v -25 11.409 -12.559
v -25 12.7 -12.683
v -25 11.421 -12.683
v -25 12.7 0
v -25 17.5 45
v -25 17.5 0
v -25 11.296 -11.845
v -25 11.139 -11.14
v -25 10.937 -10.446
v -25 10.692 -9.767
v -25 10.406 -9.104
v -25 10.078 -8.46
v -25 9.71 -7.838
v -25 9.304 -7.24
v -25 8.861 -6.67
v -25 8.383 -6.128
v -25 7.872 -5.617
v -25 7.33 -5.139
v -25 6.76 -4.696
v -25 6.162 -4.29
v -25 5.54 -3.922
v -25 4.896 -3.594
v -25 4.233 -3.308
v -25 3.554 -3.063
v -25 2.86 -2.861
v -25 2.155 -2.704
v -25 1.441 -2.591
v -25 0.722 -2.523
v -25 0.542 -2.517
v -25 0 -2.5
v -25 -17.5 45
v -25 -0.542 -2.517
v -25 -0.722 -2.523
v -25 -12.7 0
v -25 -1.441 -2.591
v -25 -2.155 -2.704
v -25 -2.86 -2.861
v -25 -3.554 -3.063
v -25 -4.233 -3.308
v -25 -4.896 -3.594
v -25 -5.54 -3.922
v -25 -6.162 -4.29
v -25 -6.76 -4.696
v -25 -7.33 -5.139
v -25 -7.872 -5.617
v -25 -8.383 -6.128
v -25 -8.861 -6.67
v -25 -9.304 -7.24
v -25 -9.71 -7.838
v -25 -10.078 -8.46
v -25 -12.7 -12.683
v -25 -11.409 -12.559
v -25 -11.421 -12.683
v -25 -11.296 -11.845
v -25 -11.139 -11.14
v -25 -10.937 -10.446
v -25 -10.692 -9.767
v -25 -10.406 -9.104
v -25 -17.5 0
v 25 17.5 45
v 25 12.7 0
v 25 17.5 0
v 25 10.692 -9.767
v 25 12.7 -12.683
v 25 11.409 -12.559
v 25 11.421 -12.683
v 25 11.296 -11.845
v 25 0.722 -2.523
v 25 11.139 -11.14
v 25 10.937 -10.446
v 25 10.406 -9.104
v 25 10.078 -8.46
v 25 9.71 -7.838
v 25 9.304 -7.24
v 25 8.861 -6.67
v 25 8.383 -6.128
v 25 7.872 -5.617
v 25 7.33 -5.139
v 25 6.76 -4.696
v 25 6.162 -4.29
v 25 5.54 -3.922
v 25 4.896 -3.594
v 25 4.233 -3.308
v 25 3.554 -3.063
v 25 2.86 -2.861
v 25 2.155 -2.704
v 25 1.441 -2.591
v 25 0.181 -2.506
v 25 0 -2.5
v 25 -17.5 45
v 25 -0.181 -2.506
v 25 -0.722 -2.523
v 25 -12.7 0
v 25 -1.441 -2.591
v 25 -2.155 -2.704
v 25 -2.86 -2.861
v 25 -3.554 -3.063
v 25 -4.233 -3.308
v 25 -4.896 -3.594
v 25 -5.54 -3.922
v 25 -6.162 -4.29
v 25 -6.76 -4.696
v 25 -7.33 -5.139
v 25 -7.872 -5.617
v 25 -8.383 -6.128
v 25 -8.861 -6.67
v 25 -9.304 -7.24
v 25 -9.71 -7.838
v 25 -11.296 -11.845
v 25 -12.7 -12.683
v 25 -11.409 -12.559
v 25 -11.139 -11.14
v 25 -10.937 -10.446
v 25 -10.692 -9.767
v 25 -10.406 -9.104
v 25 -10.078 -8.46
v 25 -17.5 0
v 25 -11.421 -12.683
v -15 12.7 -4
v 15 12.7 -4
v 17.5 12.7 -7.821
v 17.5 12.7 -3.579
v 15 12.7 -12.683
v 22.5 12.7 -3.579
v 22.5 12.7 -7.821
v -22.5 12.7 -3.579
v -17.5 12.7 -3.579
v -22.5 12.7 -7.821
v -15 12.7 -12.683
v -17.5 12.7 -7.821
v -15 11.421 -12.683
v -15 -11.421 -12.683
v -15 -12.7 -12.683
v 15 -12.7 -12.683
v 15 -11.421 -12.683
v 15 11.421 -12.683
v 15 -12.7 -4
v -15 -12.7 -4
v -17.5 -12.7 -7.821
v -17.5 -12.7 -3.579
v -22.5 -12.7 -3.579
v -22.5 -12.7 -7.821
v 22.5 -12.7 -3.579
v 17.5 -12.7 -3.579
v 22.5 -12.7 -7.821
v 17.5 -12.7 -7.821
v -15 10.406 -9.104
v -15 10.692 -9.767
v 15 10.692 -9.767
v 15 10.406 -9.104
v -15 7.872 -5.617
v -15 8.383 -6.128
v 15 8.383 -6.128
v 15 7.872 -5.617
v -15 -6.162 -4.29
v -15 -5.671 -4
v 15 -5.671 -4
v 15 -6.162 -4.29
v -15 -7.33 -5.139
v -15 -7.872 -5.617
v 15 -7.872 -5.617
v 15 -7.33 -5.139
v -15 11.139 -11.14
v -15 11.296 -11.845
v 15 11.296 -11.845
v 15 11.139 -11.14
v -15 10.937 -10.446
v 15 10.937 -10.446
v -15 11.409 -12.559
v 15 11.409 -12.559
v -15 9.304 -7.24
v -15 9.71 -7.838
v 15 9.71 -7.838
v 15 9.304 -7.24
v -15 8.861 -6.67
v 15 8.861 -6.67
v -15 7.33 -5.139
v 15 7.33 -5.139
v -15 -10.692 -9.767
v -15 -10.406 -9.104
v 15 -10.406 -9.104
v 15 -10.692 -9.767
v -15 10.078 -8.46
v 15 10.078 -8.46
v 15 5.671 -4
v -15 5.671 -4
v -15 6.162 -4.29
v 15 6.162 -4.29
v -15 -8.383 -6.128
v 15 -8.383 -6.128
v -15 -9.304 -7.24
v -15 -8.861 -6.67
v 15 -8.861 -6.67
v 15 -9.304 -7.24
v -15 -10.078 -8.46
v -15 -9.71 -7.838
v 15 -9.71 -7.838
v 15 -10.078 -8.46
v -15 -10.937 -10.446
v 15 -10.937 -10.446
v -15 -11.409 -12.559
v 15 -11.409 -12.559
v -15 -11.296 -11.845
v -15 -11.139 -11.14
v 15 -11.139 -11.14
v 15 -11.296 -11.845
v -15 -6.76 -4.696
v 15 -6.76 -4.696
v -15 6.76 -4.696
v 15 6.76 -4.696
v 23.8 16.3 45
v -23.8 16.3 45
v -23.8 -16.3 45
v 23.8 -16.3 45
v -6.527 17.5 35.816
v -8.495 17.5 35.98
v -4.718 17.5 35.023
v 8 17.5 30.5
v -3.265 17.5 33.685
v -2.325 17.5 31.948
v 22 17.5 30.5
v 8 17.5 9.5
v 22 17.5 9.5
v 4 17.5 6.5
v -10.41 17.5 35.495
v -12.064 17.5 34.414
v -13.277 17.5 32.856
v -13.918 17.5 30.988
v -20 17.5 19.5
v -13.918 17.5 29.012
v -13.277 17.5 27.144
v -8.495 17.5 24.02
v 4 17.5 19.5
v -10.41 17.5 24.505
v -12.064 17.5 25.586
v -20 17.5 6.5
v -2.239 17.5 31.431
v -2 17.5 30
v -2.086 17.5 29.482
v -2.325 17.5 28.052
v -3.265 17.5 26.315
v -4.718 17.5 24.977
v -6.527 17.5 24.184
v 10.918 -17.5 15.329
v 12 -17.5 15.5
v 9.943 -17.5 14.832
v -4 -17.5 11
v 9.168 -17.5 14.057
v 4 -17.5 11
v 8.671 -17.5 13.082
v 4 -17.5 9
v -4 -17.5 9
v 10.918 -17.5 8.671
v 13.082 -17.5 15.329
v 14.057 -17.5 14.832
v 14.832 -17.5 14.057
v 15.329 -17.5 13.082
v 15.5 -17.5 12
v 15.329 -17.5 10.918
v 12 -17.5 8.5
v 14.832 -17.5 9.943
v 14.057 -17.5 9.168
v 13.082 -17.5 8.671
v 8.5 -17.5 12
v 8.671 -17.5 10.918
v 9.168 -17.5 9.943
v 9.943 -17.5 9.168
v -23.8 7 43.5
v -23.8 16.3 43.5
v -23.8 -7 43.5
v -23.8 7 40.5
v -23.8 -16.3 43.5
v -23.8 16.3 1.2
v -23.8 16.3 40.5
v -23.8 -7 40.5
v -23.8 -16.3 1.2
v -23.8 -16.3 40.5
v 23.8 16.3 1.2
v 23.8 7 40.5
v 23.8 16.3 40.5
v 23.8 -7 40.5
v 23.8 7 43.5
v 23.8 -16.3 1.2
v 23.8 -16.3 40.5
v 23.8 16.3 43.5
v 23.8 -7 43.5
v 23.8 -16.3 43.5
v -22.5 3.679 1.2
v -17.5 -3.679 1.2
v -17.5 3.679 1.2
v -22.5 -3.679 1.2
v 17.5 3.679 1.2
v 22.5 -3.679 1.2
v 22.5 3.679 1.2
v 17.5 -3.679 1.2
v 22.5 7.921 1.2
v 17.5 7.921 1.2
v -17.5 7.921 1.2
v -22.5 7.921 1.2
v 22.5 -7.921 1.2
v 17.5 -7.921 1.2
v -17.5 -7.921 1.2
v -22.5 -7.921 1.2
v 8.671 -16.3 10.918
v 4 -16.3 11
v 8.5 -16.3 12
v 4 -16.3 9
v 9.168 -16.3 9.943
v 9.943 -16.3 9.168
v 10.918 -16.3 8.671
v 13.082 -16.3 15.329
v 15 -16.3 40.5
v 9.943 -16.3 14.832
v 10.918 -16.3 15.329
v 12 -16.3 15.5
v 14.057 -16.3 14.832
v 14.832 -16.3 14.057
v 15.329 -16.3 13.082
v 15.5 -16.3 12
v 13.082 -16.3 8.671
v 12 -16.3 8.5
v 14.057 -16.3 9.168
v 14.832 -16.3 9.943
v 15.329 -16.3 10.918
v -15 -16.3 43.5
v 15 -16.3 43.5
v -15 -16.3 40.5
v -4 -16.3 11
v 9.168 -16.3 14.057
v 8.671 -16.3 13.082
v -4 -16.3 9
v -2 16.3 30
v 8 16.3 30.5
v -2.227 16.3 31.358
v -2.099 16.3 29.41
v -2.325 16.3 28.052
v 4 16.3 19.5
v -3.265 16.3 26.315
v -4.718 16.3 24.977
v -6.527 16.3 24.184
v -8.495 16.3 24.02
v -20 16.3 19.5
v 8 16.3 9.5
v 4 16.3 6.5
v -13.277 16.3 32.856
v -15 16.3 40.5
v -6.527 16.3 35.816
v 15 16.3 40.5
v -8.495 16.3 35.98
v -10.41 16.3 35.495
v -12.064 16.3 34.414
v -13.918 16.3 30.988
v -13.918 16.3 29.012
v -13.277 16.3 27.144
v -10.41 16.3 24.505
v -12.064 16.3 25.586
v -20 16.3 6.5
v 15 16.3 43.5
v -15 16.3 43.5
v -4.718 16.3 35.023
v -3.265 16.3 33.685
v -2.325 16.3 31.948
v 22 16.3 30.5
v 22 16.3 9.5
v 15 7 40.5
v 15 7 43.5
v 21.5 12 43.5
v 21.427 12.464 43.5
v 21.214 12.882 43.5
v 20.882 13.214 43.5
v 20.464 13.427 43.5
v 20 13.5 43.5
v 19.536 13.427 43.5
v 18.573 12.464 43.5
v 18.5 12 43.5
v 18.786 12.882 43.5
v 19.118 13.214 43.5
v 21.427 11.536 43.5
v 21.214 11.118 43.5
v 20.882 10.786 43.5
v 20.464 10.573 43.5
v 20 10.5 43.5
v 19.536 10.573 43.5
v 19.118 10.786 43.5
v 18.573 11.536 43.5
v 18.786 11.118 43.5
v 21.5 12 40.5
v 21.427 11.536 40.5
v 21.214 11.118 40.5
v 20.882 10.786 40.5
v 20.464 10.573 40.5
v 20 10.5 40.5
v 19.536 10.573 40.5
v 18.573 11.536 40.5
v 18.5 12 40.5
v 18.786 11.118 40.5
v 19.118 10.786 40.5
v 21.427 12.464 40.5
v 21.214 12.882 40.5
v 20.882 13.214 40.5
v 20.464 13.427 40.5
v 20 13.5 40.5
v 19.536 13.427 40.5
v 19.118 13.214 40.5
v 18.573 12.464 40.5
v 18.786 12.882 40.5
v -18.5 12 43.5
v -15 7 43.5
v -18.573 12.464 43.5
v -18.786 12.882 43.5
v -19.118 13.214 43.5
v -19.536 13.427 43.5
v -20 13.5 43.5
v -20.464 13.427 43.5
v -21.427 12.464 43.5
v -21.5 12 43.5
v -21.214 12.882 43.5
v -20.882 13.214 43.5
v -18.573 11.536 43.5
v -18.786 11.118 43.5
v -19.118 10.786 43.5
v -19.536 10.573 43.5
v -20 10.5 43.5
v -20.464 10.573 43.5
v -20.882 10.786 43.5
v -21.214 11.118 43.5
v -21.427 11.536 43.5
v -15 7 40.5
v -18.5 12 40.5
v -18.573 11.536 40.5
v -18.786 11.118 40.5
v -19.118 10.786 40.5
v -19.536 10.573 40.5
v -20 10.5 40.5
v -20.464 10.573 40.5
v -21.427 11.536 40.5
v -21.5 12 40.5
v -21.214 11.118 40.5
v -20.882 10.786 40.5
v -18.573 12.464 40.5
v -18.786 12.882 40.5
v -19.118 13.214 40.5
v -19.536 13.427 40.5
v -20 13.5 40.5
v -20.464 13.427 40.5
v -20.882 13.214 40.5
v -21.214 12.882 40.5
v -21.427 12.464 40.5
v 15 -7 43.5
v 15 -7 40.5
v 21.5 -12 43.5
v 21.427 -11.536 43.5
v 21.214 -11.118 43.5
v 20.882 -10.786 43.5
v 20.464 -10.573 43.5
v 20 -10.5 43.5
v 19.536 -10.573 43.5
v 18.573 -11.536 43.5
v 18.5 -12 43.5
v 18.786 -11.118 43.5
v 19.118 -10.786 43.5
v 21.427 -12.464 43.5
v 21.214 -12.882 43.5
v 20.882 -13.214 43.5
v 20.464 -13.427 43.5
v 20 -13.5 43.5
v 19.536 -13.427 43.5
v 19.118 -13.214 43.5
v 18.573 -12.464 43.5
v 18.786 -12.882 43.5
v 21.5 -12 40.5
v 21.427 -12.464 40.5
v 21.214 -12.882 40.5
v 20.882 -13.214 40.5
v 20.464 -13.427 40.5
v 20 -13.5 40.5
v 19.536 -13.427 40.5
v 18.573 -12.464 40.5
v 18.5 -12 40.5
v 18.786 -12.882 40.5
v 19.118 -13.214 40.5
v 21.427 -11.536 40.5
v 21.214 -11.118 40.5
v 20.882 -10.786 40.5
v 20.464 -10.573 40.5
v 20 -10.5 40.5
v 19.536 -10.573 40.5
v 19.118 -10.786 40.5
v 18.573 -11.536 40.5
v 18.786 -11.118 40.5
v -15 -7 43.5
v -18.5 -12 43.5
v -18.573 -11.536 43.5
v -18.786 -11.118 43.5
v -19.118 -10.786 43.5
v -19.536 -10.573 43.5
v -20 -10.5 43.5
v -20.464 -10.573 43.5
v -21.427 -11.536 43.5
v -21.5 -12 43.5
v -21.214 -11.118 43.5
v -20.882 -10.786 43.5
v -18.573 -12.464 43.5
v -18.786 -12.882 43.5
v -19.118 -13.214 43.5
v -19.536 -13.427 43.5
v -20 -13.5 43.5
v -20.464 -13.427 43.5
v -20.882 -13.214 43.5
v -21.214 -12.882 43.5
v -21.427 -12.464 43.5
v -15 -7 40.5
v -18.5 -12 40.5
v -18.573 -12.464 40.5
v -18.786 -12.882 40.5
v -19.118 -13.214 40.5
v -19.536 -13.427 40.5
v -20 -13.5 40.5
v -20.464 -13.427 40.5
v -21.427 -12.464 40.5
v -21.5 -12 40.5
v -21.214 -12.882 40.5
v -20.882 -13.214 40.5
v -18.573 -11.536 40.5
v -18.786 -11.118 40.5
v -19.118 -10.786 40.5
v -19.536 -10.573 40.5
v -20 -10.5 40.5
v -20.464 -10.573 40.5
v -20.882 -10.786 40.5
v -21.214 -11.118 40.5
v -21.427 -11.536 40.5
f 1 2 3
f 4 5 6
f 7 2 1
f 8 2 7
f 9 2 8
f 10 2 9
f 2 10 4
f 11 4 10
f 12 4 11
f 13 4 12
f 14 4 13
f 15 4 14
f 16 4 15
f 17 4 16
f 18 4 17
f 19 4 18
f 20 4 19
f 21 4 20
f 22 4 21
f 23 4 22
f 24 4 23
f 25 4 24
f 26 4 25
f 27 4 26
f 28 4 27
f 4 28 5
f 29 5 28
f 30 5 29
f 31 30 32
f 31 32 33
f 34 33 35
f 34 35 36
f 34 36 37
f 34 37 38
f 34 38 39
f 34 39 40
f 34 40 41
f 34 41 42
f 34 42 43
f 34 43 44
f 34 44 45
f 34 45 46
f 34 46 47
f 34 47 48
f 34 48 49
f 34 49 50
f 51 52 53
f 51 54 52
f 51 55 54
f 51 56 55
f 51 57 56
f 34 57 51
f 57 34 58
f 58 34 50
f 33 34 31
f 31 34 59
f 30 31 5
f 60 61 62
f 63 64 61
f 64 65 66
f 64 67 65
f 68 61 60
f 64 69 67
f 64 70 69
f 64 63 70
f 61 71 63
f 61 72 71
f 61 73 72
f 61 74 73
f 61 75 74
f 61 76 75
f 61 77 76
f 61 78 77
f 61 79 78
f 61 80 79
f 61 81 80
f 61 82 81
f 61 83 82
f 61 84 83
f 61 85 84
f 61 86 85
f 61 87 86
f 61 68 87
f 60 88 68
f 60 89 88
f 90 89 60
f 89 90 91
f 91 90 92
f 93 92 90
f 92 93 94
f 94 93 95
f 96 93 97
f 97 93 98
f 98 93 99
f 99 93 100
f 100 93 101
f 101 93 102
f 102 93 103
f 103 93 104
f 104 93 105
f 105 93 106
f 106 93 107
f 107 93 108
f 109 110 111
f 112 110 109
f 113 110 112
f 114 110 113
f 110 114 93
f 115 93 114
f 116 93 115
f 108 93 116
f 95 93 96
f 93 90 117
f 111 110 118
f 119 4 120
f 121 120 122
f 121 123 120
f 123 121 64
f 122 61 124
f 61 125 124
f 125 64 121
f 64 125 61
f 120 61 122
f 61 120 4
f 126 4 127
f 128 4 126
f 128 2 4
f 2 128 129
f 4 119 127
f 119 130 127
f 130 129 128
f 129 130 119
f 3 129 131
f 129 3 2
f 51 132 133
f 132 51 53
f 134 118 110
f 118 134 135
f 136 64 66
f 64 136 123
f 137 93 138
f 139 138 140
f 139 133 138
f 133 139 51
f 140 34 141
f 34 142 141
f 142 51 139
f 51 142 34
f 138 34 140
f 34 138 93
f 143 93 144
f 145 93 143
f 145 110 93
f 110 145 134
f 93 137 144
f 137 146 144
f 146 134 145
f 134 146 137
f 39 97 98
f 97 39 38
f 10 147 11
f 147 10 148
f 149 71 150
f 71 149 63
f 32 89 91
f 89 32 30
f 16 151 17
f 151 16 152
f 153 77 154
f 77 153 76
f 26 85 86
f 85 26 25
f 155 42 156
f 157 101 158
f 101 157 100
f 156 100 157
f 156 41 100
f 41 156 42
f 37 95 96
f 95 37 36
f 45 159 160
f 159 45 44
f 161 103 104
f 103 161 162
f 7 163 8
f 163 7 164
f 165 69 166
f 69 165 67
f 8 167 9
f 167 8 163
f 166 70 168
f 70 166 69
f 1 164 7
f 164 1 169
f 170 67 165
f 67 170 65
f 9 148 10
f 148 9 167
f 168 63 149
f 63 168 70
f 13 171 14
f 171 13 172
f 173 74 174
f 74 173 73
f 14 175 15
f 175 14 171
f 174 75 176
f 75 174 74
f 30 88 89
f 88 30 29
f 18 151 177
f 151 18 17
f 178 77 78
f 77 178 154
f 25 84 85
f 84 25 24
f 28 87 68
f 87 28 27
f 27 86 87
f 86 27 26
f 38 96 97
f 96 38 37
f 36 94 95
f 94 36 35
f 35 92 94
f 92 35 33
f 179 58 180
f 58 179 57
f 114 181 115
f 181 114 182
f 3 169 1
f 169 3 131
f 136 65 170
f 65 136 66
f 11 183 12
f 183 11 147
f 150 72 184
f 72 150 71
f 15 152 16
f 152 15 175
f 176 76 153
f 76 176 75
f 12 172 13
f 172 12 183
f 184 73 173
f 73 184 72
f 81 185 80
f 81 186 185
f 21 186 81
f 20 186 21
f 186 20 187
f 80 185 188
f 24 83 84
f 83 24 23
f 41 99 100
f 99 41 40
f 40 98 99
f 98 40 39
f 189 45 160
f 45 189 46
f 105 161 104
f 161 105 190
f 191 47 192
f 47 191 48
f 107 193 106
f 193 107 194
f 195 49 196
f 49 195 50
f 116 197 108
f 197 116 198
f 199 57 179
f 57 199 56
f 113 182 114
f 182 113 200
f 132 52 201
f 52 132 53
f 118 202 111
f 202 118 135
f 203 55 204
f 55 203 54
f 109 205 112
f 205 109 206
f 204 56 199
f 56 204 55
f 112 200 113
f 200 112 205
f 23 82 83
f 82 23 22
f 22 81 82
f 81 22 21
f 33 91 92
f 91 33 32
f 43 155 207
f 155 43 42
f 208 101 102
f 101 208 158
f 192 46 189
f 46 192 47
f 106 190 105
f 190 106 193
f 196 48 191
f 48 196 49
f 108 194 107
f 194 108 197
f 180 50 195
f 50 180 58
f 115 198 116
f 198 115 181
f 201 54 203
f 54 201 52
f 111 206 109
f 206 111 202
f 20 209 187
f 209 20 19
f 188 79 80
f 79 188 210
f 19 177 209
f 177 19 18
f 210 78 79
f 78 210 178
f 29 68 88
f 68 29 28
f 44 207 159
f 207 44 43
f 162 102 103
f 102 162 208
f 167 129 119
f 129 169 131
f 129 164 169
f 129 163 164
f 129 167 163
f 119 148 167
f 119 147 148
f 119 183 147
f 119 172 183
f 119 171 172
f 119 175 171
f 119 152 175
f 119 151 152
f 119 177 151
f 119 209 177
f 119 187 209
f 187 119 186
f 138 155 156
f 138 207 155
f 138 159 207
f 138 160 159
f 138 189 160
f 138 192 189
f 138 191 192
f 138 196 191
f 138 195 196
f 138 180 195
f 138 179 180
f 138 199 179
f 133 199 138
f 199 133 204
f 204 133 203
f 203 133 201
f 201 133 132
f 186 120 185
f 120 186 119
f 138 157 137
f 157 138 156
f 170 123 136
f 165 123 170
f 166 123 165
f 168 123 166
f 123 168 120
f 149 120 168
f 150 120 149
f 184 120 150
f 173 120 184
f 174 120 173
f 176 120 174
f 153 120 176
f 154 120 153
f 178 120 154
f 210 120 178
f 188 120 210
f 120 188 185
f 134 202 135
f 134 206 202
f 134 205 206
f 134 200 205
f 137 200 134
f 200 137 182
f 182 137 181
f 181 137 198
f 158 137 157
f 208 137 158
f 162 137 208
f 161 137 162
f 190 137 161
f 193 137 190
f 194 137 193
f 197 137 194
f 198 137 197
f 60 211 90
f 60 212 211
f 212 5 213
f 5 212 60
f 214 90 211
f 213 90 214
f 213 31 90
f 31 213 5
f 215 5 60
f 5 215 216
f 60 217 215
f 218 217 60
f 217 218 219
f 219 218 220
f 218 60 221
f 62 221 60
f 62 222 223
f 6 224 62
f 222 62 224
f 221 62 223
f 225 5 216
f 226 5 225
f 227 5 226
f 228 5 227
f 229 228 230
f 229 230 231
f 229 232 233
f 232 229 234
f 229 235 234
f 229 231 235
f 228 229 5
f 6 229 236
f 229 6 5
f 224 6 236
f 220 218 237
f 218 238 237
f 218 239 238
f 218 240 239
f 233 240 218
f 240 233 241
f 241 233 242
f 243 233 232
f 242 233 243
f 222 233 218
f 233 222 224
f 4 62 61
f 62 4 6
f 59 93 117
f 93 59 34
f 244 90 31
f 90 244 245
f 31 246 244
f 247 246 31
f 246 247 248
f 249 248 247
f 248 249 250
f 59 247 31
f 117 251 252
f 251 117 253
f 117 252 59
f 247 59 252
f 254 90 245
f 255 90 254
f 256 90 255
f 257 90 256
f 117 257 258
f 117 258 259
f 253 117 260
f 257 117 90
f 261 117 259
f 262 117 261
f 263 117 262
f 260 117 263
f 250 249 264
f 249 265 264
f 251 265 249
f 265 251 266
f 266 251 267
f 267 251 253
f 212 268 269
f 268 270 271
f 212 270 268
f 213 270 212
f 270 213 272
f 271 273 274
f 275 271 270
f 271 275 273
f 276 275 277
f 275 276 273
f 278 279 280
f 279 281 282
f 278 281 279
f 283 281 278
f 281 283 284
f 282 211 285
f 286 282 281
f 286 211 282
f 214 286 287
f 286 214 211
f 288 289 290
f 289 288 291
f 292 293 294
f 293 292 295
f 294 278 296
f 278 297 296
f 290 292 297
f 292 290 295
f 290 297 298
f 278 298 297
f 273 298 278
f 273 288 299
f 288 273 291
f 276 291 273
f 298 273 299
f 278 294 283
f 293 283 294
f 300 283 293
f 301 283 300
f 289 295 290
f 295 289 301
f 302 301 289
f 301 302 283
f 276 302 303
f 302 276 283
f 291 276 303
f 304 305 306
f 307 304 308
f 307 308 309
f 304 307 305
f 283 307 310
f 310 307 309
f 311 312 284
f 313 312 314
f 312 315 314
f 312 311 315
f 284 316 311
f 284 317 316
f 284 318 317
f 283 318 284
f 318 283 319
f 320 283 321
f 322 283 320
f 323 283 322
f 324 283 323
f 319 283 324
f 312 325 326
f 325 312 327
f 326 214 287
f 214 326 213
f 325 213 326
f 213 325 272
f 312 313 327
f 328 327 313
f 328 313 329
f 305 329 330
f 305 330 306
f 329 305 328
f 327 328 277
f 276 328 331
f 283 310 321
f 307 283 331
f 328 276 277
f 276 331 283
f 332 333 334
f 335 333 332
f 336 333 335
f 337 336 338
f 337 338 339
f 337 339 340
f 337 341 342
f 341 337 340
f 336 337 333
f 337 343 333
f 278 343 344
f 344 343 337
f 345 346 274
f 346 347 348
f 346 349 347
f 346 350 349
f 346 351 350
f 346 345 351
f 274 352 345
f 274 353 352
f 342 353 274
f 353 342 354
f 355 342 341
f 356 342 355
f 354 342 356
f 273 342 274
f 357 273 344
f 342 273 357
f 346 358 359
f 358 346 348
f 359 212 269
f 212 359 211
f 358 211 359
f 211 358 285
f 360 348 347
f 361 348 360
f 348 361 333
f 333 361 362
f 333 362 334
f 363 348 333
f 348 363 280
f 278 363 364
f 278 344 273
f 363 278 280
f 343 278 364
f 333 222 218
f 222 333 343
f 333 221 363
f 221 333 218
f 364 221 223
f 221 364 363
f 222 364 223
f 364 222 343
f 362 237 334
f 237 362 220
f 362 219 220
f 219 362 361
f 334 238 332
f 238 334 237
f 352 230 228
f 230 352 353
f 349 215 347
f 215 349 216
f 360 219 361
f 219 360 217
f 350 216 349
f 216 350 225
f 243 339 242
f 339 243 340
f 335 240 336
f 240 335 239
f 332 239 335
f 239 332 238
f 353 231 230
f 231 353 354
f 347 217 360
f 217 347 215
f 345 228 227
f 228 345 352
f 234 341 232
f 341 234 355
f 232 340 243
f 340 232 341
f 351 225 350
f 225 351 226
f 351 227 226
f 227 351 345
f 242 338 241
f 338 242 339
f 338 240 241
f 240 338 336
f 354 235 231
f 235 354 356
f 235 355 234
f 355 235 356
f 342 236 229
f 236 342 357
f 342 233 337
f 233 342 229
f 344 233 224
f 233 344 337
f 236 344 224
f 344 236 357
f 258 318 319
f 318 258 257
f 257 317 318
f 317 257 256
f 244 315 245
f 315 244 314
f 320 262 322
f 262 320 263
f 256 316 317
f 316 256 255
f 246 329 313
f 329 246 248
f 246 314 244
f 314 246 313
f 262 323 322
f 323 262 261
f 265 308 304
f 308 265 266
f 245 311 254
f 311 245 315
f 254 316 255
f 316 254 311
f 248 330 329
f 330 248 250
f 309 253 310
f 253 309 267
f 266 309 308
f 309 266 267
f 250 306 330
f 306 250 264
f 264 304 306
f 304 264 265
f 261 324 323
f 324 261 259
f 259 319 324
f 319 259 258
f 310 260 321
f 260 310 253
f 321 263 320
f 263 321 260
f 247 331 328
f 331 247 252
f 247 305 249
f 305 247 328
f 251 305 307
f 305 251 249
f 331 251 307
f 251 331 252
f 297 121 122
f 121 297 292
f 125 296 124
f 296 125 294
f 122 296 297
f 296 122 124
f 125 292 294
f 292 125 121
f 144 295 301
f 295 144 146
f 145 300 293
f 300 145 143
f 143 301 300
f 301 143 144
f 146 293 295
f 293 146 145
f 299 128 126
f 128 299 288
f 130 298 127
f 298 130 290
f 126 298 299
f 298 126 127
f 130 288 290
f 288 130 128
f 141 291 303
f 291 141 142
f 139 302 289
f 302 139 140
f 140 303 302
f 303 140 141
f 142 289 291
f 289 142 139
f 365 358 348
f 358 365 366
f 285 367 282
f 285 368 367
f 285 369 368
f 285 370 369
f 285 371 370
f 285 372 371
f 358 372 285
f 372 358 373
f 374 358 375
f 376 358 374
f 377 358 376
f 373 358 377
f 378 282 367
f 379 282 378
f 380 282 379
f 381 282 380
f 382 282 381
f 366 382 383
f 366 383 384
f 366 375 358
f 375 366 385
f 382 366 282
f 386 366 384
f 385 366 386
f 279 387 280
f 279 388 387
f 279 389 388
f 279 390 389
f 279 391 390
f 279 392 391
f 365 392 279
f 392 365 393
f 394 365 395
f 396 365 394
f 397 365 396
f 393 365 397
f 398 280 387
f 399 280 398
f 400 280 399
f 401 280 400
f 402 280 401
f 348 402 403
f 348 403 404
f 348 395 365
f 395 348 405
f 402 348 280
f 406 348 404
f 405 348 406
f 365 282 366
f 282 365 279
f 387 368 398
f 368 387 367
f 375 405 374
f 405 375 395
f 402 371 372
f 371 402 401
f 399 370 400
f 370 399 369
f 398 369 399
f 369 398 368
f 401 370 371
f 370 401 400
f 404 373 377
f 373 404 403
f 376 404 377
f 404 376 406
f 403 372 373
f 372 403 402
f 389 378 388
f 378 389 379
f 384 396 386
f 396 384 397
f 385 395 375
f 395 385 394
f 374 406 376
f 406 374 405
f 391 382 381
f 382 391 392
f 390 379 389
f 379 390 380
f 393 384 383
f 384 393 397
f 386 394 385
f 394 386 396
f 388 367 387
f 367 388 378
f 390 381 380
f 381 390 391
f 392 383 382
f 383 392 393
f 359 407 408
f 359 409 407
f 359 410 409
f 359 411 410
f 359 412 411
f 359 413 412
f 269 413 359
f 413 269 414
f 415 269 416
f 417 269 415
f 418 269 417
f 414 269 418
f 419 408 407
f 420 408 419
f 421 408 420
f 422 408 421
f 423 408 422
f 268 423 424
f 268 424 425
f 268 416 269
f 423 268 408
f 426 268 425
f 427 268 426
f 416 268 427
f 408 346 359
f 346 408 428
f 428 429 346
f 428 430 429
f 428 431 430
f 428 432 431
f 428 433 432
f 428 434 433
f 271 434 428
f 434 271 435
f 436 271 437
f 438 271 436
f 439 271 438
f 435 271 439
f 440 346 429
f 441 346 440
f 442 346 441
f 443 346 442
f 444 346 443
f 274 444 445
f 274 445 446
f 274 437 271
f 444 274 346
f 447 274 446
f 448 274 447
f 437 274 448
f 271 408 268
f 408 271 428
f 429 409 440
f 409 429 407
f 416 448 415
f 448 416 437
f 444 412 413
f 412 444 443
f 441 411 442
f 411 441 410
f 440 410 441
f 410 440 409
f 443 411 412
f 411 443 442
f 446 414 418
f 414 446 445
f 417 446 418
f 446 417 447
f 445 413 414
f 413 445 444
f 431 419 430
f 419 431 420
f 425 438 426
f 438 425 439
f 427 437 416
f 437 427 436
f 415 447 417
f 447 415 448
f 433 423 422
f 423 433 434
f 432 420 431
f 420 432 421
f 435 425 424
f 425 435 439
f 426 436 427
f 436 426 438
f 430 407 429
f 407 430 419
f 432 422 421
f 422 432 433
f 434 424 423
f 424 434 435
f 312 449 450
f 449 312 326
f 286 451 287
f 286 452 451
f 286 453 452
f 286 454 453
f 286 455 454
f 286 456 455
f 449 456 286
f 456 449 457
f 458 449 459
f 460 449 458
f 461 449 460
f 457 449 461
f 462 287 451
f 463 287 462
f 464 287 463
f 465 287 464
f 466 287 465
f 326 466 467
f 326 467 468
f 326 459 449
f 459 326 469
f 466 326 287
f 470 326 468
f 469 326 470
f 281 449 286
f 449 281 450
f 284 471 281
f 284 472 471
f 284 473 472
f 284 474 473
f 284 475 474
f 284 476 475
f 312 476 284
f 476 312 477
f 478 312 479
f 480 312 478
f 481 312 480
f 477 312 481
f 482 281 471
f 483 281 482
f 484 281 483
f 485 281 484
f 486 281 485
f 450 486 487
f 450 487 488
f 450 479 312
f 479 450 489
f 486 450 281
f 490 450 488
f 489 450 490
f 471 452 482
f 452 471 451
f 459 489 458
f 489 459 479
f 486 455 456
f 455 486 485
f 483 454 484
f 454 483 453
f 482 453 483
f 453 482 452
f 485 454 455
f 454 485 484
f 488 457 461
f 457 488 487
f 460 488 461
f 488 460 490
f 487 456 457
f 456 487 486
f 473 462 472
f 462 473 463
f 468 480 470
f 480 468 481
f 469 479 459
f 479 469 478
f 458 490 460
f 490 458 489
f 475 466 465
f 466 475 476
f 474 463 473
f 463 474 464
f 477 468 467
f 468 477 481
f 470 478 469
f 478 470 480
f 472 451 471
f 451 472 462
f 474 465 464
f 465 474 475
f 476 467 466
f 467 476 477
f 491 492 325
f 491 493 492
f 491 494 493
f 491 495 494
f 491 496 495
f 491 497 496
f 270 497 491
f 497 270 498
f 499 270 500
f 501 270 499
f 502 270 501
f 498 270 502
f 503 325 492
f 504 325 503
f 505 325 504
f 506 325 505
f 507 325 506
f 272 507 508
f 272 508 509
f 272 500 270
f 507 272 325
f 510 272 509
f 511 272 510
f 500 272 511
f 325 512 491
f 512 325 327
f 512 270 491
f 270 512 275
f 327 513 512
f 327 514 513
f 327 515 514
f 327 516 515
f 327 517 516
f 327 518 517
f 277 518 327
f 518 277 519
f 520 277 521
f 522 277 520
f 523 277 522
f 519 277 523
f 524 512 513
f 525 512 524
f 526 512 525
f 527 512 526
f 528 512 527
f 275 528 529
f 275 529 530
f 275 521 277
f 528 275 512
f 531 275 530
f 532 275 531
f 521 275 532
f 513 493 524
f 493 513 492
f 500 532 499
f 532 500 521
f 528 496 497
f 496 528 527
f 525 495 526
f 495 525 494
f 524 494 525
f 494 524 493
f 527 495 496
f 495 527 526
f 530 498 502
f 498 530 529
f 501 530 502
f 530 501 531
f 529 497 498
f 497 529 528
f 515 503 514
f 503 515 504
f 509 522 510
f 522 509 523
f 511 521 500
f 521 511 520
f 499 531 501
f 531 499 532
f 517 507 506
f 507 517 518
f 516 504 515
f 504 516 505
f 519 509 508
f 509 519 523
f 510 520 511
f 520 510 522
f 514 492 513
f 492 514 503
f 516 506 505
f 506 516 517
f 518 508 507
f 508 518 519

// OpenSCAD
thickness = 1.2;

module bikeBar()
{
    rotate([0, 90, 0])
    cylinder(h = 100, d = 23, $fn = 100, center = true);
}

module screw(pos = [0,0,0], d = 3)
{
    translate(pos)
    //rotate([90, 0, 0])
    cylinder(h = 8, d = d, $fn=20, center = true);
}


module screwHole(pos)
{
    size = 3;
    translate(pos)
    difference()
    {
        cube([10, 10, size], center = true);
        
        translate([0, 0, 1.1])
        screw();
    }
}

module frontBox()
{
    difference()
    {
        union()
        {
            translate([0, 0, -14])
            difference()
            {
                translate([0, 0, 23/3])
                cube([50, 23 + 2*thickness, 23/2 + thickness], center = true);
                bikeBar();
                cube([30, 30, 20], center = true);
            }
            
            translate([0, 0, 45/2])
            difference()
            {
                cube([50, 35, 45], center = true);
                translate([0, 0, thickness])
                cube([50 - 2*thickness, 35 - 2*thickness, 45], center = true);
            }
        }
            
        translate([15, 10, 20])
        cube([14, 20, 21], center = true);
        
        translate([-8, 10, 30])
        rotate([90, 0, 0])
        cylinder(h = 32, d = 12, center = true);
        
        translate([-8, 15, 13])
        cube([24, 14, 13], center = true);
        
        translate([12, -15, 12])
        rotate([90, 0, 0])
        screw(d = 7);
        
        translate([0, -15, 10])
        cube([8, 10, 2], center = true);
        
        translate([20, 15, -8])
        rotate([45, 0, 0])
        cube([5, 3, 50], center = true);
        
        translate([20, -15, -8])
        rotate([-45, 0, 0])
        cube([5, 3, 50], center = true);
        
        translate([-20, 15, -8])
        rotate([45, 0, 0])
        cube([5, 3, 50], center = true);
        
        translate([-20, -15, -8])
        rotate([-45, 0, 0])
        cube([5, 3, 50], center = true);
    }
    
    screwHole([50/2 - 5, 34/2 - 5, 42]);
    screwHole([-50/2 + 5, 34/2 - 5, 42]);
    screwHole([50/2 - 5, -34/2 + 5, 42]);
    screwHole([-50/2 + 5, -34/2 + 5, 42]);
}

module frontBox2(pos = [0, 0, 0])
{
    translate(pos)
    difference()
    {
        cube([50 - 2*thickness, 35 - 2*thickness, thickness], center = true);
        screw([50/2 - 5, 34/2 - 5, 0]);
        screw([-50/2 + 5, 34/2 - 5, 0]);
        screw([50/2 - 5, -34/2 + 5, 0]);
        screw([-50/2 + 5, -34/2 + 5, 0]);
    }
}


frontBox();

//frontBox2([0, 0, 44]);
